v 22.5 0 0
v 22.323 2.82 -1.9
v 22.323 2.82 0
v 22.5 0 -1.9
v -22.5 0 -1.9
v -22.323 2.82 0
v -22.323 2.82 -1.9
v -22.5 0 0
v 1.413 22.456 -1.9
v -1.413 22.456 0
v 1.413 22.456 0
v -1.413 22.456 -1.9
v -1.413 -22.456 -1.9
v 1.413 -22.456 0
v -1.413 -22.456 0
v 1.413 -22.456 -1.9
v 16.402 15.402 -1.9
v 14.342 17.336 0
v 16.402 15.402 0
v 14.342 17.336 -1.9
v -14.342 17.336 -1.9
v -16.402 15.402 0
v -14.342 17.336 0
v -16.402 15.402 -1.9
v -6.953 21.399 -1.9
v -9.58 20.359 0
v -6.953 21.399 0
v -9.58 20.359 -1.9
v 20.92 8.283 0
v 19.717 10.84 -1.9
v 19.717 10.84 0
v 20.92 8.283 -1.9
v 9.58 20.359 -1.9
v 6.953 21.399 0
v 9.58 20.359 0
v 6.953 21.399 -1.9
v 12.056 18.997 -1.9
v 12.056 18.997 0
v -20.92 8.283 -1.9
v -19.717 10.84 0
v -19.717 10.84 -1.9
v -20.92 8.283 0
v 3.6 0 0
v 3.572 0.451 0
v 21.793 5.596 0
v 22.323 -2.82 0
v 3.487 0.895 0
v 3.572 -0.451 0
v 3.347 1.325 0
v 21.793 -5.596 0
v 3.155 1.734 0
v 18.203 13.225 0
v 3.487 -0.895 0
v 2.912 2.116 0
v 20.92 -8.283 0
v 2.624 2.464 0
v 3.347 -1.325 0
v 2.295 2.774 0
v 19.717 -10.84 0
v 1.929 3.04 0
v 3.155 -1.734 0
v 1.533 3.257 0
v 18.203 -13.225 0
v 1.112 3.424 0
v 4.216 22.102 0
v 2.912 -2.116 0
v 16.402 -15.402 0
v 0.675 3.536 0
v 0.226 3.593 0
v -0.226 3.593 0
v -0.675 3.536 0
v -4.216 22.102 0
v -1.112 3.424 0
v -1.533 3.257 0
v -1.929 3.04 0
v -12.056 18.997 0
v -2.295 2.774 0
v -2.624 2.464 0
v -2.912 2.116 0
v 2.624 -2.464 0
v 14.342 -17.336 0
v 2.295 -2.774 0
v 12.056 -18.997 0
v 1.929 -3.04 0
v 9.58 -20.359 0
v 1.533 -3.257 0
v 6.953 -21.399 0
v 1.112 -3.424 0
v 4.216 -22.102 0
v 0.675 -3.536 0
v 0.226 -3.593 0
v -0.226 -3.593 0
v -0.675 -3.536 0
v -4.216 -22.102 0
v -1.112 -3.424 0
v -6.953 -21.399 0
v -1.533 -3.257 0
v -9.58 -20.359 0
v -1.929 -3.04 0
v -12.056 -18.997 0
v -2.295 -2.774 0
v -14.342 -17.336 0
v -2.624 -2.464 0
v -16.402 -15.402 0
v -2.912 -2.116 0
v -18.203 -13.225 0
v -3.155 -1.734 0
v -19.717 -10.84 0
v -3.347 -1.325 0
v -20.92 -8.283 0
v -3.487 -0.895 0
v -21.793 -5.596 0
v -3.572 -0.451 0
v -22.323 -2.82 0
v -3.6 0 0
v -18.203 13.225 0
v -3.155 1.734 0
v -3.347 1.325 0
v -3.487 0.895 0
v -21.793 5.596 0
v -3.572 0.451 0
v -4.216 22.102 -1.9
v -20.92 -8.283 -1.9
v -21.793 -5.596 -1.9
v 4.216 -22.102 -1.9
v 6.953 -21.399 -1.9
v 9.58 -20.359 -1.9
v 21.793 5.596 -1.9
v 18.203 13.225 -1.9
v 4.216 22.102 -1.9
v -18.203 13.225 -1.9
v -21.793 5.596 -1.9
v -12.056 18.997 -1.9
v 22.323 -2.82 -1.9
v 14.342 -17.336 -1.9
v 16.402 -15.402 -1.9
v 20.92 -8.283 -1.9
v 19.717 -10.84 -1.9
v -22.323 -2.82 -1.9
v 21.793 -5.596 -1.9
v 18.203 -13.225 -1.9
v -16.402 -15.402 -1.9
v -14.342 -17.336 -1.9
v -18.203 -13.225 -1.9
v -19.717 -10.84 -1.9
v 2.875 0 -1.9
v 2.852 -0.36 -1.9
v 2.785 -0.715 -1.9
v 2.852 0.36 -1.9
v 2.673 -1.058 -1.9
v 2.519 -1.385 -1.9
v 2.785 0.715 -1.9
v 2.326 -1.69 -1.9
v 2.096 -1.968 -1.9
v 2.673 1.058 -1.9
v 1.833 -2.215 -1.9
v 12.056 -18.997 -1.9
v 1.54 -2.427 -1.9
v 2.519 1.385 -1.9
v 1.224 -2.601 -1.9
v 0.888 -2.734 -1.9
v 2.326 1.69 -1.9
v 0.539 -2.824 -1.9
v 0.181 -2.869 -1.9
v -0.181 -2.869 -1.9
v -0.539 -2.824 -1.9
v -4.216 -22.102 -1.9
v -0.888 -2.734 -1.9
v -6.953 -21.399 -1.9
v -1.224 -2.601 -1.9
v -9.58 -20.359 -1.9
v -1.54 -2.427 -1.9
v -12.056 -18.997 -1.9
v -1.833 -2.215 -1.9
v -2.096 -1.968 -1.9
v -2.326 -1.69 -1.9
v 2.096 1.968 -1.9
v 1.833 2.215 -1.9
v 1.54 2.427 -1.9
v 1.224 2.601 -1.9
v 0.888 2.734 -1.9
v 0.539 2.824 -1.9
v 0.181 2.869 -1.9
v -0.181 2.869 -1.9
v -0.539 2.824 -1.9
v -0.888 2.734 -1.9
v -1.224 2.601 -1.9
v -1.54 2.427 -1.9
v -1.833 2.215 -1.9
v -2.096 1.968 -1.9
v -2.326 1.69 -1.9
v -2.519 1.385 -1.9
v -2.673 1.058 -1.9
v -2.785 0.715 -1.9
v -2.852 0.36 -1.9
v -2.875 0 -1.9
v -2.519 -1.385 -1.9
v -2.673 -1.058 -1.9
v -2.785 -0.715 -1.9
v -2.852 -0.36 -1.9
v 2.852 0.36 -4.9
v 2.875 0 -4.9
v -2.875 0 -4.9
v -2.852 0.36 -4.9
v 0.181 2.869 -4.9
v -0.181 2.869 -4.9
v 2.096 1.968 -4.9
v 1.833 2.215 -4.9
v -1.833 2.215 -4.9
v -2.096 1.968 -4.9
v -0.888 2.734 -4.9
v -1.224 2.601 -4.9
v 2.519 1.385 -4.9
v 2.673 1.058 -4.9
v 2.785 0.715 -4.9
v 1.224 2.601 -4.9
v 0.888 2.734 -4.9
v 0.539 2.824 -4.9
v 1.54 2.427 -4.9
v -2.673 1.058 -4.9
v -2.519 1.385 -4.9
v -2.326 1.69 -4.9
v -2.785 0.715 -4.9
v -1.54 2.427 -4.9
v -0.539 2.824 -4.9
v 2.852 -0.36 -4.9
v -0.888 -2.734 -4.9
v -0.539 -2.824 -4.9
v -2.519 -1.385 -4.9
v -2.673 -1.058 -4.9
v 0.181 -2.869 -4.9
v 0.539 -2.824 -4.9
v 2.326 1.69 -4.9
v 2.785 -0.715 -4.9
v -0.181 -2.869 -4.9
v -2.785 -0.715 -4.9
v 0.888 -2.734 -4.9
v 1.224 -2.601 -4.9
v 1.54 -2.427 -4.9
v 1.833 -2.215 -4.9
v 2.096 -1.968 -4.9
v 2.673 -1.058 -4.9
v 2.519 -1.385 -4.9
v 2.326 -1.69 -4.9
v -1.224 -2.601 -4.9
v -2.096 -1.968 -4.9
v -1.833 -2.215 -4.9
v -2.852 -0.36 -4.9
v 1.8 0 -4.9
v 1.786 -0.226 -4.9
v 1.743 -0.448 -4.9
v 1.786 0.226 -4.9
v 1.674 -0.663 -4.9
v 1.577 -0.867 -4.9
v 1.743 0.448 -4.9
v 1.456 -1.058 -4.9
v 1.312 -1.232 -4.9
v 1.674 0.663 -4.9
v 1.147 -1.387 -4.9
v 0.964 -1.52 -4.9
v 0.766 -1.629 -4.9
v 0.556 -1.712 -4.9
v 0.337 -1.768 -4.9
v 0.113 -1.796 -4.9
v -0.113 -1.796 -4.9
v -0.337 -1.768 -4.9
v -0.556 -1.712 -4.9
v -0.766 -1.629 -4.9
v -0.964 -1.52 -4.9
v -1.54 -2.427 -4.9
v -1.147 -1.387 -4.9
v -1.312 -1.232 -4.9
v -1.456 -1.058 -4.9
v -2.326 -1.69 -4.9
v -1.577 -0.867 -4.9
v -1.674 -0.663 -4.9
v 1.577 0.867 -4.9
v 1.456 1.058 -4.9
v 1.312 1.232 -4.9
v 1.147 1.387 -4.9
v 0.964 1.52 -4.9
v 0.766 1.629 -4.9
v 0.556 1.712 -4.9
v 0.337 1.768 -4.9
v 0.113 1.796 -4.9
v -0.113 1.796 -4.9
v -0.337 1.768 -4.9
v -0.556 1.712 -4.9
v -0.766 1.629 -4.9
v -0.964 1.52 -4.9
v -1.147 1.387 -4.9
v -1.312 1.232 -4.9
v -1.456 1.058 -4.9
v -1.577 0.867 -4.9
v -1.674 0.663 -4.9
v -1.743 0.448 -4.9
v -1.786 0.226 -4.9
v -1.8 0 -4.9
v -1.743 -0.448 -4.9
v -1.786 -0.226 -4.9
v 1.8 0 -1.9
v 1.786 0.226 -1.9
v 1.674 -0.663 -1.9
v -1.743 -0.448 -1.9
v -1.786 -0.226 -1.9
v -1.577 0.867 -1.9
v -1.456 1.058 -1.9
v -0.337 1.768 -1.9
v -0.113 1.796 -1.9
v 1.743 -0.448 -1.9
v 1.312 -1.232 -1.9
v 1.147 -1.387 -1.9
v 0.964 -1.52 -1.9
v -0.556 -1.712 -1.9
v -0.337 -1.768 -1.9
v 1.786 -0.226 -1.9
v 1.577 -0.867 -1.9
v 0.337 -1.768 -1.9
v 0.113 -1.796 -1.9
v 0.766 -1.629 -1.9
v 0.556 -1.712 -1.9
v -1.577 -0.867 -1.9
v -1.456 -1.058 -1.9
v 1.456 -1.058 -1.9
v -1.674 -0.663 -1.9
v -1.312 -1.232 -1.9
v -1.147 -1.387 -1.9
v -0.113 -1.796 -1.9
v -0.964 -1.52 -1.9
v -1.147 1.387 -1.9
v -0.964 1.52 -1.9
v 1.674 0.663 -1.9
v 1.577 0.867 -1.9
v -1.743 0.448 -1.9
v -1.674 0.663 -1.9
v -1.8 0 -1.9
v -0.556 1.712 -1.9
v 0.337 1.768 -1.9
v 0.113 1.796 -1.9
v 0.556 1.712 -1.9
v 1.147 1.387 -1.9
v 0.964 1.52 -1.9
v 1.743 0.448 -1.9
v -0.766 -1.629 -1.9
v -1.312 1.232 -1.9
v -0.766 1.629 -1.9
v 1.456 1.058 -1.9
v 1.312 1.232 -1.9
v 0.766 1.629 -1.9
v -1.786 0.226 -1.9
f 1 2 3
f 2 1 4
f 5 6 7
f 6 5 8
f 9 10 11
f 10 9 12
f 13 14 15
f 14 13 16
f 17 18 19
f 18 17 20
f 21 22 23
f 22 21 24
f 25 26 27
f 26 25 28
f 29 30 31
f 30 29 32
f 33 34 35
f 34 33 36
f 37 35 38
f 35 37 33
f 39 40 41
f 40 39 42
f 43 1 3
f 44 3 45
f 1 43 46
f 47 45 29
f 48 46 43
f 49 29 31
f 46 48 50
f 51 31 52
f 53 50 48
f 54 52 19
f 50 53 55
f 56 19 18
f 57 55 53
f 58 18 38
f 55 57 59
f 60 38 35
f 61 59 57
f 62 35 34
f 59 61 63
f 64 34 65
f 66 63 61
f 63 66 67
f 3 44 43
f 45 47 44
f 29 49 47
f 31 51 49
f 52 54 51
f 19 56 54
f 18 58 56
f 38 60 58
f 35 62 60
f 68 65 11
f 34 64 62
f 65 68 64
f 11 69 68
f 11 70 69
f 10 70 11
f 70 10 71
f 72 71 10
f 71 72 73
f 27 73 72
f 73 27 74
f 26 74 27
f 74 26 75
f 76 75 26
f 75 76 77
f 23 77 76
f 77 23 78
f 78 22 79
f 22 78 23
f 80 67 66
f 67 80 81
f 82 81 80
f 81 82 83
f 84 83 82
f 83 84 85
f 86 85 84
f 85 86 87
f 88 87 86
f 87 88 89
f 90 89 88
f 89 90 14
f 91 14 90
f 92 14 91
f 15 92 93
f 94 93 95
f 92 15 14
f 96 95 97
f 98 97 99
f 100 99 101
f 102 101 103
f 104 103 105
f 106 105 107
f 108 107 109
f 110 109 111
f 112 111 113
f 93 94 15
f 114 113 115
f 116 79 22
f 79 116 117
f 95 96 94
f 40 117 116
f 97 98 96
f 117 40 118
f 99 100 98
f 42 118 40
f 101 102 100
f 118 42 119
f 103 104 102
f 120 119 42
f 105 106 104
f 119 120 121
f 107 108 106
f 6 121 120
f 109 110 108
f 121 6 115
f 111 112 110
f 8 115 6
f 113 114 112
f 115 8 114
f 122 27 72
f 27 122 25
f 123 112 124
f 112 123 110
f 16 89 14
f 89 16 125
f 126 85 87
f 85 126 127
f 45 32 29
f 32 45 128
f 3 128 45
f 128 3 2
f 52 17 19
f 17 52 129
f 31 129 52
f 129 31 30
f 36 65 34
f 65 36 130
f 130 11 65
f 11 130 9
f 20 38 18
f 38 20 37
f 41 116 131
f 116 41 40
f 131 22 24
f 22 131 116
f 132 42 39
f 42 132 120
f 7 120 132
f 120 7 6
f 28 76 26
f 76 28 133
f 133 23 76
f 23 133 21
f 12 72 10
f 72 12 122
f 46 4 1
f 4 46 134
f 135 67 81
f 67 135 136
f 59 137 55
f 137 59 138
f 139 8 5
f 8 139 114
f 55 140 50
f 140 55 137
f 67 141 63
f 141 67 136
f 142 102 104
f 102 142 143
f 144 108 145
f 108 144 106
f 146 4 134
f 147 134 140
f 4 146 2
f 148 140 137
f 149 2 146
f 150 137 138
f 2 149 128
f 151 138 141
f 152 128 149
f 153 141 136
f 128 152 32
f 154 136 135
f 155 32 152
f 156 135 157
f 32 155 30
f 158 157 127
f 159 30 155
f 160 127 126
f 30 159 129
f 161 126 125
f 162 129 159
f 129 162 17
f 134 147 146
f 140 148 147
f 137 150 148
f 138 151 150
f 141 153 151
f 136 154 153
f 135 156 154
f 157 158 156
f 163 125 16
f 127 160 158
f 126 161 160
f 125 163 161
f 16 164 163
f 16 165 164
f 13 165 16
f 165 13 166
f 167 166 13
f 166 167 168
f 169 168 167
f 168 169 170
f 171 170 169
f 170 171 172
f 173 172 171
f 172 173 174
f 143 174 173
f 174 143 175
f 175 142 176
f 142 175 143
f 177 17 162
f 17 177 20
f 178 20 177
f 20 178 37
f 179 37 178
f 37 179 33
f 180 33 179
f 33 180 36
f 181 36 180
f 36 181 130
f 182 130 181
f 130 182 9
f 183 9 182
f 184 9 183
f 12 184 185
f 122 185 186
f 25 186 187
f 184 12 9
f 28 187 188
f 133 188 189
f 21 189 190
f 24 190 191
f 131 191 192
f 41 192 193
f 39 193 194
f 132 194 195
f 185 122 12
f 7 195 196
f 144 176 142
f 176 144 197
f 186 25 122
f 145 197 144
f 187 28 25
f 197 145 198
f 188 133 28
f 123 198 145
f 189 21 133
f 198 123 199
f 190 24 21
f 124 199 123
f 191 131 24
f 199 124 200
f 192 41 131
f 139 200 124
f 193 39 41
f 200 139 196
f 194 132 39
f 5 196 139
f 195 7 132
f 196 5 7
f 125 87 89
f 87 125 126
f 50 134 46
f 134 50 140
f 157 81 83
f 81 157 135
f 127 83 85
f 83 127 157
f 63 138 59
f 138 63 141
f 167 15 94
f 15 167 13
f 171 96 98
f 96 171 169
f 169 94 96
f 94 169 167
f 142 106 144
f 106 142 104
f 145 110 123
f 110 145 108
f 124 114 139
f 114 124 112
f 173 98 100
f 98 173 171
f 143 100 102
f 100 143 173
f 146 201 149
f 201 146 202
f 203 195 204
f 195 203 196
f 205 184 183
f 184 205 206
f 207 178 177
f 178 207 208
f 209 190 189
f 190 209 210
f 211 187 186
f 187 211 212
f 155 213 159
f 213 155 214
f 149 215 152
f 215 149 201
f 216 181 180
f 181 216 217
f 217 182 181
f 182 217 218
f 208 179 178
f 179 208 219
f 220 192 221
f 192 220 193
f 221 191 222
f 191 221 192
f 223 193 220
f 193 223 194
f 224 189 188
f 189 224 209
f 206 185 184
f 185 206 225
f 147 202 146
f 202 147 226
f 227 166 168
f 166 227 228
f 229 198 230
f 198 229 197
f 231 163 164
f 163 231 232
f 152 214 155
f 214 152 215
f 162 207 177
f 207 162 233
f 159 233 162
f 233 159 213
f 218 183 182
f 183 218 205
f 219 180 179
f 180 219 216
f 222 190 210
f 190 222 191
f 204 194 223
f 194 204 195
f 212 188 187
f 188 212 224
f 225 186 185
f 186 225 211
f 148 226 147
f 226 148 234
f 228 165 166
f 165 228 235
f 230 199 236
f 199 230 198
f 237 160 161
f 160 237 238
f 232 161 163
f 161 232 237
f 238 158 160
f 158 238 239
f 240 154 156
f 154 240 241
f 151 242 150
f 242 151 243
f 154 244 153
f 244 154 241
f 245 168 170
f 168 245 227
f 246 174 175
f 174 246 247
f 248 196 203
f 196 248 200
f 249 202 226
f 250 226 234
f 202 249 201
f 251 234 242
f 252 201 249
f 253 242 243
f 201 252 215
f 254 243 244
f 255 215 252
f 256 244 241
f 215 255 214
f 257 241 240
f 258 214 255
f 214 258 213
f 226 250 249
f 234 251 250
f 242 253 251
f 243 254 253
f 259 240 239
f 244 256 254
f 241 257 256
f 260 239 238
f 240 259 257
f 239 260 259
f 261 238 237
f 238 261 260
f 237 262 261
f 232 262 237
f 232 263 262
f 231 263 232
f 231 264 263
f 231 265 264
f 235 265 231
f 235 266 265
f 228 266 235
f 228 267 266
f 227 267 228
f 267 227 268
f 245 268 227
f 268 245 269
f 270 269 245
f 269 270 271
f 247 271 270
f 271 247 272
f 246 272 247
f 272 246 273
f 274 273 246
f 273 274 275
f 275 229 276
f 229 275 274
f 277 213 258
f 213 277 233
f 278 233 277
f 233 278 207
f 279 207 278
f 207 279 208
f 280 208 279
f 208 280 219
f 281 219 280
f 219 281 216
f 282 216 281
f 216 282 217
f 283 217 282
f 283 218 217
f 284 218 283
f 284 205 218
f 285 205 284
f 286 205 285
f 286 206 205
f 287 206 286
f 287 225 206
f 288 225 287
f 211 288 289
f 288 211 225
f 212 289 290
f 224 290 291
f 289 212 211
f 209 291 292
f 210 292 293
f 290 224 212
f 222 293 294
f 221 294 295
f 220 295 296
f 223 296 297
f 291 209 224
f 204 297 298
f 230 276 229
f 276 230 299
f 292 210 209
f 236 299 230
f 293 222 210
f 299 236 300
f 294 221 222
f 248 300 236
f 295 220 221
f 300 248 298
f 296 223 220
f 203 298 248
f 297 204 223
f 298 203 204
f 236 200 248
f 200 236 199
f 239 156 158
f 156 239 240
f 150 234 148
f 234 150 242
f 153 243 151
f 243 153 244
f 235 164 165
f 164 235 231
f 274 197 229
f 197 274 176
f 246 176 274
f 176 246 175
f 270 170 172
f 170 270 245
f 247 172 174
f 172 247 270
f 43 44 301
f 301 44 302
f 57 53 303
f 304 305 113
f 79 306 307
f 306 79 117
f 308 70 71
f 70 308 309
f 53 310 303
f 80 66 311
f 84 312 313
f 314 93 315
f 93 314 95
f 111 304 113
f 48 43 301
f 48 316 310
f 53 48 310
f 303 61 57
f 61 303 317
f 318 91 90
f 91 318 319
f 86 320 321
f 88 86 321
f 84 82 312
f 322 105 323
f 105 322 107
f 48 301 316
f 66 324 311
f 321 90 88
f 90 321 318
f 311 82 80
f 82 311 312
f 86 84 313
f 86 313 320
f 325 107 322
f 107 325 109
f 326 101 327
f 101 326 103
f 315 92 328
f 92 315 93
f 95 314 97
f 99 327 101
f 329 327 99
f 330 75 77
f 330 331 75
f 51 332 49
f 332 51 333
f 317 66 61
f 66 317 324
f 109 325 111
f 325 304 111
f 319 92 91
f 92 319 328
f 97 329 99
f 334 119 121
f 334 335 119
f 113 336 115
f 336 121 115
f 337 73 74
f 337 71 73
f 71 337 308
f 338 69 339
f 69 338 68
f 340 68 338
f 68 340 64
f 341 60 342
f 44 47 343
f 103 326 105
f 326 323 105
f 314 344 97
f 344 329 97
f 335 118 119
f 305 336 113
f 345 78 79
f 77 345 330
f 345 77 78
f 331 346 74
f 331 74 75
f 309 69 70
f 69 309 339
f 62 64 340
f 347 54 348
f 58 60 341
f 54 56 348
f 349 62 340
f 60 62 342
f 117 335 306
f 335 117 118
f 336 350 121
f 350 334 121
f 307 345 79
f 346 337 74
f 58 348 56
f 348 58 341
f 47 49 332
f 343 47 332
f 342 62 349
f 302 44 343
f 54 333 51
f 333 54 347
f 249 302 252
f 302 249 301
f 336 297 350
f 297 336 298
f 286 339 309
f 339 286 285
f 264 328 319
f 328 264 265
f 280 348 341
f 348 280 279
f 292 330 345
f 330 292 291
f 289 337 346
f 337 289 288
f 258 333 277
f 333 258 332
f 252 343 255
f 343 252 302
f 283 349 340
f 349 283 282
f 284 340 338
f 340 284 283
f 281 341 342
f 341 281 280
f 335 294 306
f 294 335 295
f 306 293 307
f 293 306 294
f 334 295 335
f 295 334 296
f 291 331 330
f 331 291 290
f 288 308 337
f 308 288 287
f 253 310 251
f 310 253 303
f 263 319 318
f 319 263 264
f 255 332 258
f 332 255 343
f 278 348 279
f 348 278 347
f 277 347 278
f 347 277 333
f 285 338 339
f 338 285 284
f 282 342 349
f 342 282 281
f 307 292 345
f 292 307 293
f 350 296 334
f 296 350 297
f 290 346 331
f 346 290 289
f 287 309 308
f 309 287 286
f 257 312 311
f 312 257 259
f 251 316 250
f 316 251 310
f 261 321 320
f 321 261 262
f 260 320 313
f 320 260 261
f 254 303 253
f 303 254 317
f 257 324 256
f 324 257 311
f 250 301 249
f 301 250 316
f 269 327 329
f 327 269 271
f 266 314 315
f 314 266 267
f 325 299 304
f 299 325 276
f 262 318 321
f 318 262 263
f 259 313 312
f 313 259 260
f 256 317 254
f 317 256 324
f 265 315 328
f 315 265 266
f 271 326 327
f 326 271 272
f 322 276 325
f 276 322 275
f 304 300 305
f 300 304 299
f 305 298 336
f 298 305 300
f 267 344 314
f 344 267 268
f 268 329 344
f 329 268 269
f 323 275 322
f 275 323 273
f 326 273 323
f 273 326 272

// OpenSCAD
$fn = 50;


difference() {
	union() {
		translate(v = [0, 0, -1.9000000000]) {
			cylinder(h = 1.9000000000, r = 22.5000000000);
		}
		#translate(v = [0, 0, -4.9000000000]) {
			cylinder(h = 4.9000000000, r = 2.8750000000);
		}
	}
	union() {
		translate(v = [0, 0, 0]) {
			rotate(a = [0, 0, 0]) {
				difference() {
					union() {
						translate(v = [0, 0, -4.9000000000]) {
							cylinder(h = 4.9000000000, r = 1.5000000000);
						}
						translate(v = [0, 0, -1.9000000000]) {
							cylinder(h = 1.9000000000, r1 = 1.8000000000, r2 = 3.6000000000);
						}
						translate(v = [0, 0, -4.9000000000]) {
							cylinder(h = 4.9000000000, r = 1.8000000000);
						}
						translate(v = [0, 0, -4.9000000000]) {
							cylinder(h = 4.9000000000, r = 1.5000000000);
						}
					}
					union();
				}
			}
		}
	}
}
